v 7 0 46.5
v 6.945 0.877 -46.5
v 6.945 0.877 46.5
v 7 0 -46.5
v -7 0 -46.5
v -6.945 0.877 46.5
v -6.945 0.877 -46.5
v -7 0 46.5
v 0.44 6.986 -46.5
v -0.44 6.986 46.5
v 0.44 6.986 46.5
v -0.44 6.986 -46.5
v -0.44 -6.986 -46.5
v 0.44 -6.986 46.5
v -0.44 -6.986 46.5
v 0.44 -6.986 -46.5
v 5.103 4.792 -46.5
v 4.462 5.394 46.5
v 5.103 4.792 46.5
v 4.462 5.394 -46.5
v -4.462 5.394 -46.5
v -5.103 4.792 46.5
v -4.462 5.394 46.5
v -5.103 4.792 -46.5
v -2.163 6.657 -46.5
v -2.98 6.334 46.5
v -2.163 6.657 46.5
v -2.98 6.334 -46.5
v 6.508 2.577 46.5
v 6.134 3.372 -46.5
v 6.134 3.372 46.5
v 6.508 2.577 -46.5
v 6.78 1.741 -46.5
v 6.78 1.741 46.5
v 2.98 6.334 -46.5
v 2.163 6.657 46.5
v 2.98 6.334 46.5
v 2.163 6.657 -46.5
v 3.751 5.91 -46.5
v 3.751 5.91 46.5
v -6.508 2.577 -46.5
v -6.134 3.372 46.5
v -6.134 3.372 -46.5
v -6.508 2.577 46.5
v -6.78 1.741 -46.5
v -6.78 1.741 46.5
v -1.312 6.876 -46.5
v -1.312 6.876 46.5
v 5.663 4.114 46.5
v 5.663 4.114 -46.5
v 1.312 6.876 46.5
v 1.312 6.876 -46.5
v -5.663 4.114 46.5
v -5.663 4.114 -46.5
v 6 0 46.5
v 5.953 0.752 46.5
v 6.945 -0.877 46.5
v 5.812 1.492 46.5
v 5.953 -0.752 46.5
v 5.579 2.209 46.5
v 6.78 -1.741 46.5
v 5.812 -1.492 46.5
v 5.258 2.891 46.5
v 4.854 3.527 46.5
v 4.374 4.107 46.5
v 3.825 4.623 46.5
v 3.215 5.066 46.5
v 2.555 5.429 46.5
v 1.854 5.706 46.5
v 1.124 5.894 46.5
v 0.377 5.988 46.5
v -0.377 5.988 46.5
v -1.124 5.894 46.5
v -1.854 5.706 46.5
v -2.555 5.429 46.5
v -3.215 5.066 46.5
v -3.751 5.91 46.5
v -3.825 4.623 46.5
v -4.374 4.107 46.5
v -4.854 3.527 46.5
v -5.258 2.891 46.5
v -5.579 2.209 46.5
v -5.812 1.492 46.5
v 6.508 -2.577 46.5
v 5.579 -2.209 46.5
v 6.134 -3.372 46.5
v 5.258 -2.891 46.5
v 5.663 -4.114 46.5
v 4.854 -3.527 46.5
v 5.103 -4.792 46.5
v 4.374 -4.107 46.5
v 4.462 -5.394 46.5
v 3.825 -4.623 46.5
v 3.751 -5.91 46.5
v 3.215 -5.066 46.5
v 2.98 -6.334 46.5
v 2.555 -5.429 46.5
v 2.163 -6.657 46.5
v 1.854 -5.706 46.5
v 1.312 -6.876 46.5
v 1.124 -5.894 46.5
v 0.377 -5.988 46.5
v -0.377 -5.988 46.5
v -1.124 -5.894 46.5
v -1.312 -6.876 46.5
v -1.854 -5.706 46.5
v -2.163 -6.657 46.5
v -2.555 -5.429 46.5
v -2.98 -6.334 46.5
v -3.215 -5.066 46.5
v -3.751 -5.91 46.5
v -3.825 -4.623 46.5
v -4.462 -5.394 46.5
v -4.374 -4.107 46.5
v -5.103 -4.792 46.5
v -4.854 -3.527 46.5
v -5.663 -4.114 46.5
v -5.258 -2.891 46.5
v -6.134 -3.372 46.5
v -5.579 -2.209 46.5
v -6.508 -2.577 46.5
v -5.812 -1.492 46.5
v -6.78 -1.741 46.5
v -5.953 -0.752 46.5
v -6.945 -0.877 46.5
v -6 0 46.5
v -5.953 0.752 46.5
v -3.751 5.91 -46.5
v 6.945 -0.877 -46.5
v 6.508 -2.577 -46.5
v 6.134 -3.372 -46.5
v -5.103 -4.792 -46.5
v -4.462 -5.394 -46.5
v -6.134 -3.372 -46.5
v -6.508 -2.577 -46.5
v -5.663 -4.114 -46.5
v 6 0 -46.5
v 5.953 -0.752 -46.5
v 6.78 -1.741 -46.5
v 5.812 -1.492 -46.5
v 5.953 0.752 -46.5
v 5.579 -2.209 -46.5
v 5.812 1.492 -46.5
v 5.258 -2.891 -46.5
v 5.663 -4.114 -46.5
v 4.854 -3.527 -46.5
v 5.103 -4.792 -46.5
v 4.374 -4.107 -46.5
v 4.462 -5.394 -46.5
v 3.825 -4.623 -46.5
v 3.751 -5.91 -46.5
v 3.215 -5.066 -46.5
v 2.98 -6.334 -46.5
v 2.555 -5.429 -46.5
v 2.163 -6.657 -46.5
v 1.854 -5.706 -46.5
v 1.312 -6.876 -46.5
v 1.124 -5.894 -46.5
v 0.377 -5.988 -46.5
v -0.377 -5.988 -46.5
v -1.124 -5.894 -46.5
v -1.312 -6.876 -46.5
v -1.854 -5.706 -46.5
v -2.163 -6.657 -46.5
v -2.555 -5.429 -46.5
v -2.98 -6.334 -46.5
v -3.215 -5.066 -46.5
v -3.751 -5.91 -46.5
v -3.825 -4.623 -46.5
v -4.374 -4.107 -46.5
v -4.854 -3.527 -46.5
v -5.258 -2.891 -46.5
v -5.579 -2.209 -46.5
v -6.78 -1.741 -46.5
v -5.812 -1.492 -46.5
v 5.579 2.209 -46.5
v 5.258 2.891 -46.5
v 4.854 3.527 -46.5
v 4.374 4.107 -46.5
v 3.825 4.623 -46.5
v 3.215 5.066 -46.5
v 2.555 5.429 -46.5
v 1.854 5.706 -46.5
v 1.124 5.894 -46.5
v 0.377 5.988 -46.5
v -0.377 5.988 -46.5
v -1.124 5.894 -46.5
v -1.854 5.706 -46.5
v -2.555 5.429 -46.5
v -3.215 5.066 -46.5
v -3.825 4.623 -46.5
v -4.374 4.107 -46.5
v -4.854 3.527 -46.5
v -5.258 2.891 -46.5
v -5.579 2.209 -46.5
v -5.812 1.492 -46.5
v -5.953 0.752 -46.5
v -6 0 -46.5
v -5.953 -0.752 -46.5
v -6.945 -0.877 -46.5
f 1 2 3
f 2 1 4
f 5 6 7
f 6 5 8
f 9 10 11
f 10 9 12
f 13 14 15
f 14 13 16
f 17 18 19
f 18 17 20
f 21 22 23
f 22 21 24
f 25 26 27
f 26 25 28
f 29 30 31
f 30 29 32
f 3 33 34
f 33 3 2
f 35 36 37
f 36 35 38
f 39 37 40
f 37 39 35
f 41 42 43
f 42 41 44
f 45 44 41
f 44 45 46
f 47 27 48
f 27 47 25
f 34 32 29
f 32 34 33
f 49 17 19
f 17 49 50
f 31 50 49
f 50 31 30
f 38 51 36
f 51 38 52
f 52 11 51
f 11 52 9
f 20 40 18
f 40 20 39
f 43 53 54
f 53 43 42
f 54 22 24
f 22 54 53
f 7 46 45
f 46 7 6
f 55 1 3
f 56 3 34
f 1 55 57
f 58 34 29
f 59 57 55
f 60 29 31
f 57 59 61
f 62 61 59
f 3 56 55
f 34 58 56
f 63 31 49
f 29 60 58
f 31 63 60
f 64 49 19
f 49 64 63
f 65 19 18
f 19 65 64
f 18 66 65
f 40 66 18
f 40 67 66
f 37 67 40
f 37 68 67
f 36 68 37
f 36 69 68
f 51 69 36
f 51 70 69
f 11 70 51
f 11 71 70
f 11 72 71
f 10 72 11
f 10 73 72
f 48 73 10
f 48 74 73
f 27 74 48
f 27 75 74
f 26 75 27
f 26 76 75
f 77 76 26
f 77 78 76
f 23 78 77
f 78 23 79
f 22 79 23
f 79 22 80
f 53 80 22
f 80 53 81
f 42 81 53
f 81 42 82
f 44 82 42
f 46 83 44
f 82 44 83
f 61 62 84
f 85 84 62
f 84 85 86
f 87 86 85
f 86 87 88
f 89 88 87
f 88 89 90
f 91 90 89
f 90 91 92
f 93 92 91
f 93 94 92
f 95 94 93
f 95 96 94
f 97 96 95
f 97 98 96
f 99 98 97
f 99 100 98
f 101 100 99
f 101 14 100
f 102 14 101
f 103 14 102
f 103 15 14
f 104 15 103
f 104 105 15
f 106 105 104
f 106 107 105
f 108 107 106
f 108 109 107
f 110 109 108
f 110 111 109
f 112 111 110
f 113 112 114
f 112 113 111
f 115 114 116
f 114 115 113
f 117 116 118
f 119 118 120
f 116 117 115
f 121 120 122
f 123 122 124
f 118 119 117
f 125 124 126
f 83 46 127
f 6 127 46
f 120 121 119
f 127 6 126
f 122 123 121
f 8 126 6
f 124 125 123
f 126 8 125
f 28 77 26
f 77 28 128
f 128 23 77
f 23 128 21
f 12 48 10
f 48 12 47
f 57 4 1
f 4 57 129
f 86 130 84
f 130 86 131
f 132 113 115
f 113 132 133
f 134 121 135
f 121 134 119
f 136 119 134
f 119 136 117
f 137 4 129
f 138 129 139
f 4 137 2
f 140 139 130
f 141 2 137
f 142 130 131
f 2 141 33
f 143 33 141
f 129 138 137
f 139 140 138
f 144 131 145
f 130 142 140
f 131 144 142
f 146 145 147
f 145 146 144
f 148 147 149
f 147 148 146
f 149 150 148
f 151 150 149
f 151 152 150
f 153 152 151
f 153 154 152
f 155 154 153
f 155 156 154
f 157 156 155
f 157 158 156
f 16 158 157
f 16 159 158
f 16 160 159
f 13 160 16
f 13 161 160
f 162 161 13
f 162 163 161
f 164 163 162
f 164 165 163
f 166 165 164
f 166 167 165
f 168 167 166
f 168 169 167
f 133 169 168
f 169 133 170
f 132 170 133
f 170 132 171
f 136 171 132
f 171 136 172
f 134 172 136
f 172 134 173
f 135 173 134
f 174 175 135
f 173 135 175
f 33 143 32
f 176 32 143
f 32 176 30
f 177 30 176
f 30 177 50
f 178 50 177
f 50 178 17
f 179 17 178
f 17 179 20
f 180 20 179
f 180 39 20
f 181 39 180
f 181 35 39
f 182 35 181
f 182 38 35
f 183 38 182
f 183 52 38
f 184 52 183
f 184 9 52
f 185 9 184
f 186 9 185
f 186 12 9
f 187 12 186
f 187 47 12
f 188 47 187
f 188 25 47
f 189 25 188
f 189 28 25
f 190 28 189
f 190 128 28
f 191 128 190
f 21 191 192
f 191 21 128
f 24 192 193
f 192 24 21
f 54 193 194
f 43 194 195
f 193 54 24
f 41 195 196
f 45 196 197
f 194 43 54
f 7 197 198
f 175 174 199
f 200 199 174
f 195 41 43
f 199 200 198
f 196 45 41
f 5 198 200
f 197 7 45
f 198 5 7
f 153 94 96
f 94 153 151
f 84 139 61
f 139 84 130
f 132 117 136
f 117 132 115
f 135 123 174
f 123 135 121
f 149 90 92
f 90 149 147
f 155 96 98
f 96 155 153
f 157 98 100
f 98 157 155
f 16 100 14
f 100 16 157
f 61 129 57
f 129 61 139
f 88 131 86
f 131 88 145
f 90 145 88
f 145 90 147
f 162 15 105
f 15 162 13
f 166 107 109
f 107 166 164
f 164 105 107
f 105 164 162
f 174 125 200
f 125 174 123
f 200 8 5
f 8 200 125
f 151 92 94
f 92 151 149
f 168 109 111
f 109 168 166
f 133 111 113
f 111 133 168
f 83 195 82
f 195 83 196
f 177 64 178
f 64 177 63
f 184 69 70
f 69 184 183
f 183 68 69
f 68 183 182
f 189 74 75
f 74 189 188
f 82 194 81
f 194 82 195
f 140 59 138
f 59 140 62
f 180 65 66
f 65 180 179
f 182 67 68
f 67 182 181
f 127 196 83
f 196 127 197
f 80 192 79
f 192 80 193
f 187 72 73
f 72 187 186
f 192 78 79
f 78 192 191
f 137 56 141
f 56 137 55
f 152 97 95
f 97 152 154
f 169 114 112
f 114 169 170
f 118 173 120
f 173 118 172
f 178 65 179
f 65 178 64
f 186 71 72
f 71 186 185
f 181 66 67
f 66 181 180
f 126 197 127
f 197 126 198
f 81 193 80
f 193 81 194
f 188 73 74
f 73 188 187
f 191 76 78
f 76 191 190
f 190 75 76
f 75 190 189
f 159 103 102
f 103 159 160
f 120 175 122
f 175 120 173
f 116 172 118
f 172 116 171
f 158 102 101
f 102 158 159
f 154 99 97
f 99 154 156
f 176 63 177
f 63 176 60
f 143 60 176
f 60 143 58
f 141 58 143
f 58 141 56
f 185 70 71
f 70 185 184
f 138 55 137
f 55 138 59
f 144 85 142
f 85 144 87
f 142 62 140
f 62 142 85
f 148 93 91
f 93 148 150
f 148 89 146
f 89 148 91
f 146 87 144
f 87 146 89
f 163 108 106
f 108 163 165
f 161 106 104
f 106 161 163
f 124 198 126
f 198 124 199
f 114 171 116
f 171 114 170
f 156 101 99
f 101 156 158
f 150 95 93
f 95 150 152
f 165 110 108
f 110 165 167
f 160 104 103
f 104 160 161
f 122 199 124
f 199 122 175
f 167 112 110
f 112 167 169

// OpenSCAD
$fn = 50;


difference() {
	union() {
		translate(v = [0, 0, -46.5000000000]) {
			cylinder(h = 93, r = 7.0000000000);
		}
	}
	union() {
		translate(v = [0, 0, -100.0000000000]) {
			cylinder(h = 200, r = 6);
		}
	}
}
